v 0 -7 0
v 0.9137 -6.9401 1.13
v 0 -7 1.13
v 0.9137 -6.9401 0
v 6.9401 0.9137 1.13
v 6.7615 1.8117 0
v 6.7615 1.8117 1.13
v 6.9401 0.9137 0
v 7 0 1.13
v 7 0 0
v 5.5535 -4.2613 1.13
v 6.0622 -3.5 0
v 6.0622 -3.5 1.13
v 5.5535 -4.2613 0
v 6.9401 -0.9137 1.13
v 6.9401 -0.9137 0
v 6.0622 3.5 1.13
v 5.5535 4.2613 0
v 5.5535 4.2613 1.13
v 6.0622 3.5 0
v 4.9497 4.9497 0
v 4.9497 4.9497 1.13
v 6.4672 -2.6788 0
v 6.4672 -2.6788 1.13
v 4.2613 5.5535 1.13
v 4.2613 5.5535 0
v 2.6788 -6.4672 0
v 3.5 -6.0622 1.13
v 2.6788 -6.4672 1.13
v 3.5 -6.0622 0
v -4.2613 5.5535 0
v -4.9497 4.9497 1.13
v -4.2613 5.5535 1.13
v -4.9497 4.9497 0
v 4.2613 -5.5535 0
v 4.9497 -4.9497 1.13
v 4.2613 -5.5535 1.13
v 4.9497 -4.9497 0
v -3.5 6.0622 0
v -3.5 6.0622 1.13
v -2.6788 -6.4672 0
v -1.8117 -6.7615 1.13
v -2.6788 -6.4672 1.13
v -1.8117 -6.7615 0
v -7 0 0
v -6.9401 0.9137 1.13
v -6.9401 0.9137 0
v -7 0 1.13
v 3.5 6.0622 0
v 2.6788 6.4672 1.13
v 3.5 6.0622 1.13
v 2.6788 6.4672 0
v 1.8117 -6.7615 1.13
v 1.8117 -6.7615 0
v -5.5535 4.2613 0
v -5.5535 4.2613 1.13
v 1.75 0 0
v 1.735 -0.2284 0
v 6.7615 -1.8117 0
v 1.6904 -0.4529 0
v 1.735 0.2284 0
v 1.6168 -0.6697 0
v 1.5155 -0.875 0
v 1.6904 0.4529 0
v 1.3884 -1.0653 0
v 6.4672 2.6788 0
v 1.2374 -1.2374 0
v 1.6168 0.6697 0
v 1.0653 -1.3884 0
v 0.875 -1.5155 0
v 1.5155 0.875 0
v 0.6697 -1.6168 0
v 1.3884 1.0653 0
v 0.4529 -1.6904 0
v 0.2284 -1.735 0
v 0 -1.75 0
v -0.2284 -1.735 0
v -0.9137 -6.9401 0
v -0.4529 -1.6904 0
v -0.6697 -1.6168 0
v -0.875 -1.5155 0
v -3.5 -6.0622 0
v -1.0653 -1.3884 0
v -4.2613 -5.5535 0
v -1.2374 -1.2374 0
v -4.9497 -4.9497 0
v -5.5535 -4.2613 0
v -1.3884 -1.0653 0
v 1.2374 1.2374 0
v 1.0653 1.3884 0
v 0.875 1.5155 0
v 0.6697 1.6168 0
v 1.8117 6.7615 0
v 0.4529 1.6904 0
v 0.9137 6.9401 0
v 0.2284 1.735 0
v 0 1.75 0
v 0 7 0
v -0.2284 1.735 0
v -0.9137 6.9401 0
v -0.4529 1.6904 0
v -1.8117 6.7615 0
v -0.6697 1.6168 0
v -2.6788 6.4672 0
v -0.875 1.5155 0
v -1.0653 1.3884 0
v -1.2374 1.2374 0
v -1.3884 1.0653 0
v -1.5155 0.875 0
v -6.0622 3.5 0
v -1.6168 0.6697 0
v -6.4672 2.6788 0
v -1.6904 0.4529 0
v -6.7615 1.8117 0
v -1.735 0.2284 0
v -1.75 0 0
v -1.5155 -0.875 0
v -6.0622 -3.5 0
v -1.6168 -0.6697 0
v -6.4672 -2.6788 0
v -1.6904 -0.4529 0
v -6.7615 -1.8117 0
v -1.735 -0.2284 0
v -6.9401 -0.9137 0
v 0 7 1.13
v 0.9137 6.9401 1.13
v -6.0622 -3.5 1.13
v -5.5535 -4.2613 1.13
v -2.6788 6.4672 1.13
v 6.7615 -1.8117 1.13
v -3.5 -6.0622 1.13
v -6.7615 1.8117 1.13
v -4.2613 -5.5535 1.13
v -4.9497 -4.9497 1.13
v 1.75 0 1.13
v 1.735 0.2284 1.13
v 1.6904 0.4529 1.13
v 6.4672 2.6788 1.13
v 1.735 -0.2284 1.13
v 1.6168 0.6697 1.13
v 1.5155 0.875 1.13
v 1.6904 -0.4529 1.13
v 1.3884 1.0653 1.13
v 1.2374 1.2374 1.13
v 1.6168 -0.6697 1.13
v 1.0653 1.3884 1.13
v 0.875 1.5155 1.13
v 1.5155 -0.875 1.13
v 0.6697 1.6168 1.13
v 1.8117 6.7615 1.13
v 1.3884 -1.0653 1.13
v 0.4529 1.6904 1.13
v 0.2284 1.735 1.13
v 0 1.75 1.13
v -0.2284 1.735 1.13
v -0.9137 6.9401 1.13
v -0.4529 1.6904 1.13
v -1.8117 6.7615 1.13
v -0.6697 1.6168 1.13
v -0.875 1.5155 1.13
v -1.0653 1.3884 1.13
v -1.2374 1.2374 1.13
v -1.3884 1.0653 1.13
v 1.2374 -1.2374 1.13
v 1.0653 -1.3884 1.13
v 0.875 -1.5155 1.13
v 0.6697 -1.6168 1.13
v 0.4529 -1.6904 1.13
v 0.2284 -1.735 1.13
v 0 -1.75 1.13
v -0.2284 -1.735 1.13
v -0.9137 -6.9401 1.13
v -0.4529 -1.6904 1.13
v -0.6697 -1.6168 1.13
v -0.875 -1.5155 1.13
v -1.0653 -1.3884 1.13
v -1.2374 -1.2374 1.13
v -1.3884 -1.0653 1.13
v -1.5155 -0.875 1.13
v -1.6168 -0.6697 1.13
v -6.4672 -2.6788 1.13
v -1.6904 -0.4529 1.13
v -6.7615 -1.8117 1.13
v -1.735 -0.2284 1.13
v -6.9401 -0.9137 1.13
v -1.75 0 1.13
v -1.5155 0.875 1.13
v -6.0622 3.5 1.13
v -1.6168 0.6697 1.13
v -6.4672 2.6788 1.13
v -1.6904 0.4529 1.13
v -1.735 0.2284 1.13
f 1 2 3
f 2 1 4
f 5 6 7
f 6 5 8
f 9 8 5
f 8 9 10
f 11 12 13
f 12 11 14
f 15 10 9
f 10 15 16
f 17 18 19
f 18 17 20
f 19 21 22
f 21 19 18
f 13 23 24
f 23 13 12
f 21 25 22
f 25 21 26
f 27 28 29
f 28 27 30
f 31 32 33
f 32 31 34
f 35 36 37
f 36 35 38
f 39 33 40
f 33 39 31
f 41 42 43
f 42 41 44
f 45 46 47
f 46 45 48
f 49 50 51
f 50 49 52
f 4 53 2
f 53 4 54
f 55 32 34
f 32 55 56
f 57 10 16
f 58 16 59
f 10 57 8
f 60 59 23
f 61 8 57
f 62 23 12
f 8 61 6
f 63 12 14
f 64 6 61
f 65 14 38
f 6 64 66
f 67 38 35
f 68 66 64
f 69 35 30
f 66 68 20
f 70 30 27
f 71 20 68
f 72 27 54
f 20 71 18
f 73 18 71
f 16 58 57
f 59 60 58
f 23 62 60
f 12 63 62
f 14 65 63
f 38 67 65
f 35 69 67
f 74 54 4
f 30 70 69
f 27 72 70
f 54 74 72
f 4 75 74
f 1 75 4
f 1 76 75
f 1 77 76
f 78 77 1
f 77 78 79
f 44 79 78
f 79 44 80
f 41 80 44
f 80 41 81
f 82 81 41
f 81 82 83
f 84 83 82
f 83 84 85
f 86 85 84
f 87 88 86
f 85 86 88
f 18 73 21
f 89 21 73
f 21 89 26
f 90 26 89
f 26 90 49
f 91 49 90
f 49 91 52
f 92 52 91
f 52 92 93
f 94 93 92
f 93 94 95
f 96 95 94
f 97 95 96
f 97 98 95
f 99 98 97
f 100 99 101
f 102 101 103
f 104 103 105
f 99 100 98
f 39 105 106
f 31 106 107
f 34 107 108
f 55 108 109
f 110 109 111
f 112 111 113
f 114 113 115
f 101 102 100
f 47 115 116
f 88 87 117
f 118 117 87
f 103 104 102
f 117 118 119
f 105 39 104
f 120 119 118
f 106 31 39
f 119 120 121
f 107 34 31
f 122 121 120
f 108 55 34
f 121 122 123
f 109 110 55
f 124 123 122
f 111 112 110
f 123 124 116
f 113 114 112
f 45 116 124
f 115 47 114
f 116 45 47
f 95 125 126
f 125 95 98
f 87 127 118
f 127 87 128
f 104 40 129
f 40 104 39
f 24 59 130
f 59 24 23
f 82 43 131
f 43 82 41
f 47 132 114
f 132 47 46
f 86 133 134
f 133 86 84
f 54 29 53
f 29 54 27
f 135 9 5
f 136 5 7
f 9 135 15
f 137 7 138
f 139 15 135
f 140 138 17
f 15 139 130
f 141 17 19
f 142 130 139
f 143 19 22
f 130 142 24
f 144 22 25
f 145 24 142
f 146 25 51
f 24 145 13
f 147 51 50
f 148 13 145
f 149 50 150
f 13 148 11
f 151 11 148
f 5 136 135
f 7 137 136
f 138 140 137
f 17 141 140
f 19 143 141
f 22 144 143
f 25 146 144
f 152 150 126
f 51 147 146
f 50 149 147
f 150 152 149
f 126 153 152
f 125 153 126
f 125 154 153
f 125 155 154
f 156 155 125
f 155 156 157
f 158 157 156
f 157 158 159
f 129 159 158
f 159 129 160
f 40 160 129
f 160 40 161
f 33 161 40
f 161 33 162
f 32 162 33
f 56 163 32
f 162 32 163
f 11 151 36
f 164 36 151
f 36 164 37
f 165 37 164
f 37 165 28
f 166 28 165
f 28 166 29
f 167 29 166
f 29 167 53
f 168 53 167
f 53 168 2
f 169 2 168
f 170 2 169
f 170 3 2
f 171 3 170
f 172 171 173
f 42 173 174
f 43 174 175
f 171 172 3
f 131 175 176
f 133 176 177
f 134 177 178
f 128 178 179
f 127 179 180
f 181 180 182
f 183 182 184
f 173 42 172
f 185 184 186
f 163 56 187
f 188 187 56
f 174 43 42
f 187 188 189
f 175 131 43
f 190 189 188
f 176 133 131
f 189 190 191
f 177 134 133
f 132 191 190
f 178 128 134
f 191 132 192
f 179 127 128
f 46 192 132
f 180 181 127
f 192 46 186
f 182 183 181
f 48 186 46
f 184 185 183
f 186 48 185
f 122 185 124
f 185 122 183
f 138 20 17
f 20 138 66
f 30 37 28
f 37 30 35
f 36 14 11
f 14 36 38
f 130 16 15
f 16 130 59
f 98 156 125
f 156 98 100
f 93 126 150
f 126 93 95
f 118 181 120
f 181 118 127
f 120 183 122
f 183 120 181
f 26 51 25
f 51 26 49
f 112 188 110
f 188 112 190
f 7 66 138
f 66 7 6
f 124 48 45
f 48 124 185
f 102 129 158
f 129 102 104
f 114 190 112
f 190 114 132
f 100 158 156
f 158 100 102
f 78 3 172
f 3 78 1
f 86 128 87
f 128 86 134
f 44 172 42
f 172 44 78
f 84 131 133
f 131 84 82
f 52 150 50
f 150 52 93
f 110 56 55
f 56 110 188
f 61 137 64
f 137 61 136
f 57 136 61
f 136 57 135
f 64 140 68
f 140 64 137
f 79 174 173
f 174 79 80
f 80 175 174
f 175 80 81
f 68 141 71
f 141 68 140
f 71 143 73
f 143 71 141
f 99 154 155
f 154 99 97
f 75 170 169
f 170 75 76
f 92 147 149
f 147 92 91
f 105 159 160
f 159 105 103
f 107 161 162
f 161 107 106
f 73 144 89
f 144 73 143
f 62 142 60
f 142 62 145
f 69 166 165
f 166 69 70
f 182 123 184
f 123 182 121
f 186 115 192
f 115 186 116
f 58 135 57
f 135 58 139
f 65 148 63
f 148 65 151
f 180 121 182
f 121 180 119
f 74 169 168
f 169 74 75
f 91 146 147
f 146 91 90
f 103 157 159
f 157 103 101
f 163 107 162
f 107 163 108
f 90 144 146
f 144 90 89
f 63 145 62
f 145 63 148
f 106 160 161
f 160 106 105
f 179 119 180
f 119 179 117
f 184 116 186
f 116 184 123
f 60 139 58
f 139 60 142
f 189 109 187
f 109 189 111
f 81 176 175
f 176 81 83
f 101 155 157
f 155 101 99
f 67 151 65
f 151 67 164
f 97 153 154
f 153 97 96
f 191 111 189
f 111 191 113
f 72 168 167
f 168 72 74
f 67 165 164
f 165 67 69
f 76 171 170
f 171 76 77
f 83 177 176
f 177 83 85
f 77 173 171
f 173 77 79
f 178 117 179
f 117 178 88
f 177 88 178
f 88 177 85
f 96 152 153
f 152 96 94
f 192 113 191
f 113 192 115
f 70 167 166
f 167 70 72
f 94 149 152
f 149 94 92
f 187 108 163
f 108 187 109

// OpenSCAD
// file: parameters.scad
// =============================================================================
// Gen-AM Vernier flux-claw hyper — WOUND-AWARE (HARD GATE)
// Dual-rotor vernier: Rotor B +22.5° vs 12-slot stator; Ø5 flux claws
// =============================================================================

wire_awg            = 26;
wire_od             = 0.45;
turns               = 185;      // +10 vs Gen-AJ 175
fill                = 0.70;
layers_per_face     = 2;
wind_build_axial    = layers_per_face * wire_od * fill;   // 0.63 mm
wind_build_radial   = 3 * wire_od * fill;                 // 0.945 mm

coil_id_r           = 16.5;
coil_od_r           = 63.5;
span_deg            = 25.0;
former_web          = 1.40;     // thinner vs AJ 1.50
flange_t            = 0.60;
wall                = 1.2;
slot_w              = 2.4;
mount_hole          = 3.5;
tab_len             = 7.0;

former_bare_h       = former_web + 2 * flange_t;            // 2.60 mm
coil_envelope_h     = former_bare_h + 2 * wind_build_axial; // 3.86 mm

run_clear           = 0.50;
gap_spacer_h        = run_clear + wind_build_axial;         // 1.13 mm
m2m                 = coil_envelope_h + 2 * run_clear;      // 4.86 mm

coil_stations       = 12;
bay_r_in            = coil_id_r - 2.0 - wind_build_radial;
bay_r_out           = coil_od_r + 2.0 + wind_build_radial;
bay_span            = span_deg + 4.0;
bay_offset          = 2.0;
stator_thick        = former_bare_h;
stator_od           = 160.0;
shaft_clear_stator  = 34.0;
coil_mount_r        = 26.0;

large_pocket_d      = 20.3;
small_pocket_d      = 5.3;
pocket_h            = 5.2;
large_n             = 8;
R_large             = 40.5;     // closer to copper centroid vs AJ R=42
R_small_inner       = 26.0;
R_small_mid         = 40.5;
R_small_outer       = 56.0;
carrier_od          = 156.0;
carrier_thick       = 7.5;
hub_h               = 10.0;
hub_od              = 30.0;
rotor_b_offset_deg  = 22.5;     // vernier offset vs 12-slot stator

shaft_bore          = 8.35;
bearing_d           = 21.85;
bearing_h           = 7.2;
m3_clear            = 3.5;
bolt_r_inner        = 36.0;
bolt_n_inner        = 6;
flange_bolt_r       = 72.0;
flange_bolt_n       = 6;
brace_r             = 68.0;
brace_d             = 4.3;
brace_n             = 4;

spacer_pad_od       = 14.0;
spacer_pad_id       = m3_clear;
endbell_od          = 160.0;
endbell_thick       = 8.0;
endbell_shaft_clear = 10.0;

$fn = 64;
// main file
// Gen-AM gap spacer — h = run_clear + wind_build_axial
include <parameters.scad>;
$fn = 48;
difference() {
    cylinder(d=spacer_pad_od, h=gap_spacer_h);
    translate([0, 0, -0.1]) cylinder(d=spacer_pad_id, h=gap_spacer_h + 0.2);
}
